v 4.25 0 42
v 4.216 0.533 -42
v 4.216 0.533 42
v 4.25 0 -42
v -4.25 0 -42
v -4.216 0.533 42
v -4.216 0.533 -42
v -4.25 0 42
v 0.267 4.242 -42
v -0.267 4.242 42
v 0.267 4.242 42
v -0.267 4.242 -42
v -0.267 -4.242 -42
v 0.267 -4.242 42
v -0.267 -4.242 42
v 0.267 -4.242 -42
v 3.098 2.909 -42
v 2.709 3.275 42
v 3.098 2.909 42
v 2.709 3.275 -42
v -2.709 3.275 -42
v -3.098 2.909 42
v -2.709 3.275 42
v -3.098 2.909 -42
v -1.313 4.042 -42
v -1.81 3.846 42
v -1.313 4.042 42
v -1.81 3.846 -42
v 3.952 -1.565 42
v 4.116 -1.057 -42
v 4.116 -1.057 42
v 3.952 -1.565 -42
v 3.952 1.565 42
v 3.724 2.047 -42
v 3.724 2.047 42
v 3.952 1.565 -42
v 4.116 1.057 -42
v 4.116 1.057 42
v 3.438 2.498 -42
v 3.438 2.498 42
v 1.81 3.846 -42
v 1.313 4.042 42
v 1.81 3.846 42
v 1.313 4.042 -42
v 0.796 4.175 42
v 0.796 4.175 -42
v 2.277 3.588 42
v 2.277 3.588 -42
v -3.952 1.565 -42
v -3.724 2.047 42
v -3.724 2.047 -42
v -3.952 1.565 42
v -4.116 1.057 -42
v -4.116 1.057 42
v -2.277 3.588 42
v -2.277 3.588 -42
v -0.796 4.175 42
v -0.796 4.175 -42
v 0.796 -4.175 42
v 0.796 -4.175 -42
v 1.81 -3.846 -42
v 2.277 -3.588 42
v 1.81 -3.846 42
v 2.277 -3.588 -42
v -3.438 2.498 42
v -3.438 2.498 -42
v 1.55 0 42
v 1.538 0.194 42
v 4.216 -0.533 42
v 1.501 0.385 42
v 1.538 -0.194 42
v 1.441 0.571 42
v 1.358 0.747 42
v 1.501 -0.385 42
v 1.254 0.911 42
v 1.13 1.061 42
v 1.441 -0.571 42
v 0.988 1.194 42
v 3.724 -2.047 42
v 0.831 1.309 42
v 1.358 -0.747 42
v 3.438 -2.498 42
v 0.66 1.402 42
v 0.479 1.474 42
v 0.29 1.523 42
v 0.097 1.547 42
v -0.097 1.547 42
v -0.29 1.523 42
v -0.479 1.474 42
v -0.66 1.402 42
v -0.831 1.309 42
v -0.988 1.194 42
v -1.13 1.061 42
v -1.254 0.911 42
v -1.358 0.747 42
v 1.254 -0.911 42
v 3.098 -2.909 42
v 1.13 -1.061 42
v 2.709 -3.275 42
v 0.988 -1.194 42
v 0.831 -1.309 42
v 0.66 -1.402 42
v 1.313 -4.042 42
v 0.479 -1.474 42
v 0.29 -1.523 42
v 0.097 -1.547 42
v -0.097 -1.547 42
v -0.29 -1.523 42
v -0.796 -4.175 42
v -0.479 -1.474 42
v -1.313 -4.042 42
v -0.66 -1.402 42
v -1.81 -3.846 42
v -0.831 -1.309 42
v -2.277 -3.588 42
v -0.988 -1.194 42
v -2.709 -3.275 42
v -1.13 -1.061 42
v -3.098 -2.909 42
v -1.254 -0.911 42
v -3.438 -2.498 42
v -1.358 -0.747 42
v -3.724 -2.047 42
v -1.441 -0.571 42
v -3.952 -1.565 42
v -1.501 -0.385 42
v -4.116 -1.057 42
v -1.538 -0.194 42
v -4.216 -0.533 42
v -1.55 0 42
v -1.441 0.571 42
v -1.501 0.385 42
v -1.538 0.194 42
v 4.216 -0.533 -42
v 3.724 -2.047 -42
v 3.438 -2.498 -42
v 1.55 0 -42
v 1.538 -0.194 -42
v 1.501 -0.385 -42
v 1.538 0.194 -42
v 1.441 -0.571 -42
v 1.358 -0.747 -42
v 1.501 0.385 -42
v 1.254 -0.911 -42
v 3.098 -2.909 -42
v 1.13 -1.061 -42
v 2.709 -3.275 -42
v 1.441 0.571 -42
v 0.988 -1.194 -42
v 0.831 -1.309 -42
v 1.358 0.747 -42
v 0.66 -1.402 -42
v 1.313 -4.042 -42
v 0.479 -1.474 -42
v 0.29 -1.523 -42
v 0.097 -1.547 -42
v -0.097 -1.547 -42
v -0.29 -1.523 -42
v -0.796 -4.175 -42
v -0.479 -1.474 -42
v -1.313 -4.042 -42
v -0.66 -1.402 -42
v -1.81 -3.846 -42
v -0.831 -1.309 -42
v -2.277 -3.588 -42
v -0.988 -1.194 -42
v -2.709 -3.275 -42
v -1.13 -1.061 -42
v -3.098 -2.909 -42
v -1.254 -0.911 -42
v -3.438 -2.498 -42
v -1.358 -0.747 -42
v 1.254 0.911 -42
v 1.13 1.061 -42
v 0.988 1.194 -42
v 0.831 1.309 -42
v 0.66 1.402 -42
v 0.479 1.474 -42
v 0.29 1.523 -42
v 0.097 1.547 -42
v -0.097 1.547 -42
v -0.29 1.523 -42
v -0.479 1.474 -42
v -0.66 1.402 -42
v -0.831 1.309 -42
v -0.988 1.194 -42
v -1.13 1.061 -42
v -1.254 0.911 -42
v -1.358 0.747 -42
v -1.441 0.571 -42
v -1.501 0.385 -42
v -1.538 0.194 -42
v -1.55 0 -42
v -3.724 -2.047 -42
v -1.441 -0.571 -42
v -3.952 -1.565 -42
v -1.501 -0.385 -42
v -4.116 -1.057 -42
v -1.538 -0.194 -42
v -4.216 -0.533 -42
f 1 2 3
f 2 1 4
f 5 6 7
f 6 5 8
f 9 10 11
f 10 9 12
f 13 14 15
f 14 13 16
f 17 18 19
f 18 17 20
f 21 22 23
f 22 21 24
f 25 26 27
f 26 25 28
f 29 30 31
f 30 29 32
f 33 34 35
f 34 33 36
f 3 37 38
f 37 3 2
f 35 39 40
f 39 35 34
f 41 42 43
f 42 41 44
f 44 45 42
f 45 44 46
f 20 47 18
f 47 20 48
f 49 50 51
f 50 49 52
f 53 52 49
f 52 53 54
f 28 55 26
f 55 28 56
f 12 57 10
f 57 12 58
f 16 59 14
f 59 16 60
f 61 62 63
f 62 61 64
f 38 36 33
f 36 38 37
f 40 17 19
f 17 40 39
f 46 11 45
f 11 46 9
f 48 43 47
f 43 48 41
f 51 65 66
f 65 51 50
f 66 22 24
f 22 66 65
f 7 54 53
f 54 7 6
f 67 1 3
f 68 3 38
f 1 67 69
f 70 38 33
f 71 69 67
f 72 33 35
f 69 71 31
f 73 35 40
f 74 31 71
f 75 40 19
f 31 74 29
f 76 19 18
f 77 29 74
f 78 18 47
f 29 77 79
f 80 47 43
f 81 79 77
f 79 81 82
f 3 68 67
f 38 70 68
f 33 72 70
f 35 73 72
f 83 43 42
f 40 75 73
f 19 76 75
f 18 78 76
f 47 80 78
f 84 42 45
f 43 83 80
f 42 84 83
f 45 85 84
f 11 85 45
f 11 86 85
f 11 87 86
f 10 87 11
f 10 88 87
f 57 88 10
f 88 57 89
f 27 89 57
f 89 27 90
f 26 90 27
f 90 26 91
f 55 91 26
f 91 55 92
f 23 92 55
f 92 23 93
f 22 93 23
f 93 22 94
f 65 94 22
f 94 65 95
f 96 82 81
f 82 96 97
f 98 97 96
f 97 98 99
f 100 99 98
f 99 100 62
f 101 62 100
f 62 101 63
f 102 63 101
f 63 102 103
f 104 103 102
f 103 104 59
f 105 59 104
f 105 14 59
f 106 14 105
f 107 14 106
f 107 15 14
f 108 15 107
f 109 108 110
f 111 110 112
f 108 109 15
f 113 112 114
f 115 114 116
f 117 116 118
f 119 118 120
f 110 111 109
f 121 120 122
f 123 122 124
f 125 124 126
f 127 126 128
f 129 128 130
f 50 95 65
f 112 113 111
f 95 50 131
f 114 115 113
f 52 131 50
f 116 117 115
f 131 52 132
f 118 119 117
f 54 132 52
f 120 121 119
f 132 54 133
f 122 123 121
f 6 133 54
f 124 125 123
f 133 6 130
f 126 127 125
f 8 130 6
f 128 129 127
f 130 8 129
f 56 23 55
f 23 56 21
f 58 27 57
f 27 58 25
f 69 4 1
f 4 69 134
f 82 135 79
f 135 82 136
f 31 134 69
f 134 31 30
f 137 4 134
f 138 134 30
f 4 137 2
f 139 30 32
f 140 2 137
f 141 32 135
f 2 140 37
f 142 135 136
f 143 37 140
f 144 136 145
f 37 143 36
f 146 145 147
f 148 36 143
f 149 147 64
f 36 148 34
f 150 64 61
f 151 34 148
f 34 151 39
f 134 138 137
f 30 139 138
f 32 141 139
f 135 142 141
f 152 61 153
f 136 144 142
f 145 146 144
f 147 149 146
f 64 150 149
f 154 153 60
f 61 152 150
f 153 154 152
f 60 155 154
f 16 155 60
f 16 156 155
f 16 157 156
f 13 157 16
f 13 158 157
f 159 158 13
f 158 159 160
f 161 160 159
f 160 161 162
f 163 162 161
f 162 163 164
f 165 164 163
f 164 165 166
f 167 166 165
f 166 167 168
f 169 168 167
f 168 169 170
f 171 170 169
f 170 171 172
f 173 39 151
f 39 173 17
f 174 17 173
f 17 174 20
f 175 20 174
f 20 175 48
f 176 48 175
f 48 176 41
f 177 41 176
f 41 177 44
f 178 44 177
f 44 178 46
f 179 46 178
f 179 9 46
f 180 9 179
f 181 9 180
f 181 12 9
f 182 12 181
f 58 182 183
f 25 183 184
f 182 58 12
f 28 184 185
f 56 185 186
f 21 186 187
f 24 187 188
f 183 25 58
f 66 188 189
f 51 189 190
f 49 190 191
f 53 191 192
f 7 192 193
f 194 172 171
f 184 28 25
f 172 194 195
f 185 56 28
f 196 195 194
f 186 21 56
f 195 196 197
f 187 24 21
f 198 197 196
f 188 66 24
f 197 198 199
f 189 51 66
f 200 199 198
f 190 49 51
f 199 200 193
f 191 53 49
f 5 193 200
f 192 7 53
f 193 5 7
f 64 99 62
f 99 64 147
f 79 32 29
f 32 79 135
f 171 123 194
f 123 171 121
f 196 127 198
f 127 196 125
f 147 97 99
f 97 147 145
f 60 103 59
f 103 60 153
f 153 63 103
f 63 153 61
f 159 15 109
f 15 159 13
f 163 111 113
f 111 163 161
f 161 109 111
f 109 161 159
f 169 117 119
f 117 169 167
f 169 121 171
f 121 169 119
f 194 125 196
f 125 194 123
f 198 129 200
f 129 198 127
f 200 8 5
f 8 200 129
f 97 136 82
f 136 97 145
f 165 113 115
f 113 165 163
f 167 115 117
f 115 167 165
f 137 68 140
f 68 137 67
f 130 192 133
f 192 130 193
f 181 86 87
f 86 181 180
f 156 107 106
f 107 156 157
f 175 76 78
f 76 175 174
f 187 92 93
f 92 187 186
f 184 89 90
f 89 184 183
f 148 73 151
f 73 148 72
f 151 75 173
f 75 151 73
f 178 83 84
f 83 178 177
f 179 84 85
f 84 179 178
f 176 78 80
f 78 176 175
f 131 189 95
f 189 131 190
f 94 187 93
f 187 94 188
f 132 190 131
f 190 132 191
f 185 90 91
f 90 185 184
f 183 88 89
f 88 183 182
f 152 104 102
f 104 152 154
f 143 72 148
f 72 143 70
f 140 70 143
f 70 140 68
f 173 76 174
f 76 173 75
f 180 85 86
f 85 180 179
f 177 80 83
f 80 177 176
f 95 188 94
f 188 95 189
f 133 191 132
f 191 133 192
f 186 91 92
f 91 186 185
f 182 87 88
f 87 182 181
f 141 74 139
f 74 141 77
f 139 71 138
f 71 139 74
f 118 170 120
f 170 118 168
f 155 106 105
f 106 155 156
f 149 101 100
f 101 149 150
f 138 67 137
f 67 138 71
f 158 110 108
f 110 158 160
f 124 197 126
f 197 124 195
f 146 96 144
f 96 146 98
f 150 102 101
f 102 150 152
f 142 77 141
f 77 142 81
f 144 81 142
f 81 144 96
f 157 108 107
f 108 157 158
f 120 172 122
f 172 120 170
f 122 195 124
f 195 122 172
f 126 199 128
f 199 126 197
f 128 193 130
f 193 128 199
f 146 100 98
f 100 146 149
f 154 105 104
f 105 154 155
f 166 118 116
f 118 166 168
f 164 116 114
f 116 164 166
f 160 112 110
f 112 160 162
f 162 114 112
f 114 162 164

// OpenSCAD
$fn = 50;


difference() {
	union() {
		translate(v = [0, 0, -42.0000000000]) {
			cylinder(h = 84, r = 4.2500000000);
		}
	}
	union() {
		translate(v = [0, 0, -100.0000000000]) {
			cylinder(h = 200, r = 1.5500000000);
		}
	}
}
